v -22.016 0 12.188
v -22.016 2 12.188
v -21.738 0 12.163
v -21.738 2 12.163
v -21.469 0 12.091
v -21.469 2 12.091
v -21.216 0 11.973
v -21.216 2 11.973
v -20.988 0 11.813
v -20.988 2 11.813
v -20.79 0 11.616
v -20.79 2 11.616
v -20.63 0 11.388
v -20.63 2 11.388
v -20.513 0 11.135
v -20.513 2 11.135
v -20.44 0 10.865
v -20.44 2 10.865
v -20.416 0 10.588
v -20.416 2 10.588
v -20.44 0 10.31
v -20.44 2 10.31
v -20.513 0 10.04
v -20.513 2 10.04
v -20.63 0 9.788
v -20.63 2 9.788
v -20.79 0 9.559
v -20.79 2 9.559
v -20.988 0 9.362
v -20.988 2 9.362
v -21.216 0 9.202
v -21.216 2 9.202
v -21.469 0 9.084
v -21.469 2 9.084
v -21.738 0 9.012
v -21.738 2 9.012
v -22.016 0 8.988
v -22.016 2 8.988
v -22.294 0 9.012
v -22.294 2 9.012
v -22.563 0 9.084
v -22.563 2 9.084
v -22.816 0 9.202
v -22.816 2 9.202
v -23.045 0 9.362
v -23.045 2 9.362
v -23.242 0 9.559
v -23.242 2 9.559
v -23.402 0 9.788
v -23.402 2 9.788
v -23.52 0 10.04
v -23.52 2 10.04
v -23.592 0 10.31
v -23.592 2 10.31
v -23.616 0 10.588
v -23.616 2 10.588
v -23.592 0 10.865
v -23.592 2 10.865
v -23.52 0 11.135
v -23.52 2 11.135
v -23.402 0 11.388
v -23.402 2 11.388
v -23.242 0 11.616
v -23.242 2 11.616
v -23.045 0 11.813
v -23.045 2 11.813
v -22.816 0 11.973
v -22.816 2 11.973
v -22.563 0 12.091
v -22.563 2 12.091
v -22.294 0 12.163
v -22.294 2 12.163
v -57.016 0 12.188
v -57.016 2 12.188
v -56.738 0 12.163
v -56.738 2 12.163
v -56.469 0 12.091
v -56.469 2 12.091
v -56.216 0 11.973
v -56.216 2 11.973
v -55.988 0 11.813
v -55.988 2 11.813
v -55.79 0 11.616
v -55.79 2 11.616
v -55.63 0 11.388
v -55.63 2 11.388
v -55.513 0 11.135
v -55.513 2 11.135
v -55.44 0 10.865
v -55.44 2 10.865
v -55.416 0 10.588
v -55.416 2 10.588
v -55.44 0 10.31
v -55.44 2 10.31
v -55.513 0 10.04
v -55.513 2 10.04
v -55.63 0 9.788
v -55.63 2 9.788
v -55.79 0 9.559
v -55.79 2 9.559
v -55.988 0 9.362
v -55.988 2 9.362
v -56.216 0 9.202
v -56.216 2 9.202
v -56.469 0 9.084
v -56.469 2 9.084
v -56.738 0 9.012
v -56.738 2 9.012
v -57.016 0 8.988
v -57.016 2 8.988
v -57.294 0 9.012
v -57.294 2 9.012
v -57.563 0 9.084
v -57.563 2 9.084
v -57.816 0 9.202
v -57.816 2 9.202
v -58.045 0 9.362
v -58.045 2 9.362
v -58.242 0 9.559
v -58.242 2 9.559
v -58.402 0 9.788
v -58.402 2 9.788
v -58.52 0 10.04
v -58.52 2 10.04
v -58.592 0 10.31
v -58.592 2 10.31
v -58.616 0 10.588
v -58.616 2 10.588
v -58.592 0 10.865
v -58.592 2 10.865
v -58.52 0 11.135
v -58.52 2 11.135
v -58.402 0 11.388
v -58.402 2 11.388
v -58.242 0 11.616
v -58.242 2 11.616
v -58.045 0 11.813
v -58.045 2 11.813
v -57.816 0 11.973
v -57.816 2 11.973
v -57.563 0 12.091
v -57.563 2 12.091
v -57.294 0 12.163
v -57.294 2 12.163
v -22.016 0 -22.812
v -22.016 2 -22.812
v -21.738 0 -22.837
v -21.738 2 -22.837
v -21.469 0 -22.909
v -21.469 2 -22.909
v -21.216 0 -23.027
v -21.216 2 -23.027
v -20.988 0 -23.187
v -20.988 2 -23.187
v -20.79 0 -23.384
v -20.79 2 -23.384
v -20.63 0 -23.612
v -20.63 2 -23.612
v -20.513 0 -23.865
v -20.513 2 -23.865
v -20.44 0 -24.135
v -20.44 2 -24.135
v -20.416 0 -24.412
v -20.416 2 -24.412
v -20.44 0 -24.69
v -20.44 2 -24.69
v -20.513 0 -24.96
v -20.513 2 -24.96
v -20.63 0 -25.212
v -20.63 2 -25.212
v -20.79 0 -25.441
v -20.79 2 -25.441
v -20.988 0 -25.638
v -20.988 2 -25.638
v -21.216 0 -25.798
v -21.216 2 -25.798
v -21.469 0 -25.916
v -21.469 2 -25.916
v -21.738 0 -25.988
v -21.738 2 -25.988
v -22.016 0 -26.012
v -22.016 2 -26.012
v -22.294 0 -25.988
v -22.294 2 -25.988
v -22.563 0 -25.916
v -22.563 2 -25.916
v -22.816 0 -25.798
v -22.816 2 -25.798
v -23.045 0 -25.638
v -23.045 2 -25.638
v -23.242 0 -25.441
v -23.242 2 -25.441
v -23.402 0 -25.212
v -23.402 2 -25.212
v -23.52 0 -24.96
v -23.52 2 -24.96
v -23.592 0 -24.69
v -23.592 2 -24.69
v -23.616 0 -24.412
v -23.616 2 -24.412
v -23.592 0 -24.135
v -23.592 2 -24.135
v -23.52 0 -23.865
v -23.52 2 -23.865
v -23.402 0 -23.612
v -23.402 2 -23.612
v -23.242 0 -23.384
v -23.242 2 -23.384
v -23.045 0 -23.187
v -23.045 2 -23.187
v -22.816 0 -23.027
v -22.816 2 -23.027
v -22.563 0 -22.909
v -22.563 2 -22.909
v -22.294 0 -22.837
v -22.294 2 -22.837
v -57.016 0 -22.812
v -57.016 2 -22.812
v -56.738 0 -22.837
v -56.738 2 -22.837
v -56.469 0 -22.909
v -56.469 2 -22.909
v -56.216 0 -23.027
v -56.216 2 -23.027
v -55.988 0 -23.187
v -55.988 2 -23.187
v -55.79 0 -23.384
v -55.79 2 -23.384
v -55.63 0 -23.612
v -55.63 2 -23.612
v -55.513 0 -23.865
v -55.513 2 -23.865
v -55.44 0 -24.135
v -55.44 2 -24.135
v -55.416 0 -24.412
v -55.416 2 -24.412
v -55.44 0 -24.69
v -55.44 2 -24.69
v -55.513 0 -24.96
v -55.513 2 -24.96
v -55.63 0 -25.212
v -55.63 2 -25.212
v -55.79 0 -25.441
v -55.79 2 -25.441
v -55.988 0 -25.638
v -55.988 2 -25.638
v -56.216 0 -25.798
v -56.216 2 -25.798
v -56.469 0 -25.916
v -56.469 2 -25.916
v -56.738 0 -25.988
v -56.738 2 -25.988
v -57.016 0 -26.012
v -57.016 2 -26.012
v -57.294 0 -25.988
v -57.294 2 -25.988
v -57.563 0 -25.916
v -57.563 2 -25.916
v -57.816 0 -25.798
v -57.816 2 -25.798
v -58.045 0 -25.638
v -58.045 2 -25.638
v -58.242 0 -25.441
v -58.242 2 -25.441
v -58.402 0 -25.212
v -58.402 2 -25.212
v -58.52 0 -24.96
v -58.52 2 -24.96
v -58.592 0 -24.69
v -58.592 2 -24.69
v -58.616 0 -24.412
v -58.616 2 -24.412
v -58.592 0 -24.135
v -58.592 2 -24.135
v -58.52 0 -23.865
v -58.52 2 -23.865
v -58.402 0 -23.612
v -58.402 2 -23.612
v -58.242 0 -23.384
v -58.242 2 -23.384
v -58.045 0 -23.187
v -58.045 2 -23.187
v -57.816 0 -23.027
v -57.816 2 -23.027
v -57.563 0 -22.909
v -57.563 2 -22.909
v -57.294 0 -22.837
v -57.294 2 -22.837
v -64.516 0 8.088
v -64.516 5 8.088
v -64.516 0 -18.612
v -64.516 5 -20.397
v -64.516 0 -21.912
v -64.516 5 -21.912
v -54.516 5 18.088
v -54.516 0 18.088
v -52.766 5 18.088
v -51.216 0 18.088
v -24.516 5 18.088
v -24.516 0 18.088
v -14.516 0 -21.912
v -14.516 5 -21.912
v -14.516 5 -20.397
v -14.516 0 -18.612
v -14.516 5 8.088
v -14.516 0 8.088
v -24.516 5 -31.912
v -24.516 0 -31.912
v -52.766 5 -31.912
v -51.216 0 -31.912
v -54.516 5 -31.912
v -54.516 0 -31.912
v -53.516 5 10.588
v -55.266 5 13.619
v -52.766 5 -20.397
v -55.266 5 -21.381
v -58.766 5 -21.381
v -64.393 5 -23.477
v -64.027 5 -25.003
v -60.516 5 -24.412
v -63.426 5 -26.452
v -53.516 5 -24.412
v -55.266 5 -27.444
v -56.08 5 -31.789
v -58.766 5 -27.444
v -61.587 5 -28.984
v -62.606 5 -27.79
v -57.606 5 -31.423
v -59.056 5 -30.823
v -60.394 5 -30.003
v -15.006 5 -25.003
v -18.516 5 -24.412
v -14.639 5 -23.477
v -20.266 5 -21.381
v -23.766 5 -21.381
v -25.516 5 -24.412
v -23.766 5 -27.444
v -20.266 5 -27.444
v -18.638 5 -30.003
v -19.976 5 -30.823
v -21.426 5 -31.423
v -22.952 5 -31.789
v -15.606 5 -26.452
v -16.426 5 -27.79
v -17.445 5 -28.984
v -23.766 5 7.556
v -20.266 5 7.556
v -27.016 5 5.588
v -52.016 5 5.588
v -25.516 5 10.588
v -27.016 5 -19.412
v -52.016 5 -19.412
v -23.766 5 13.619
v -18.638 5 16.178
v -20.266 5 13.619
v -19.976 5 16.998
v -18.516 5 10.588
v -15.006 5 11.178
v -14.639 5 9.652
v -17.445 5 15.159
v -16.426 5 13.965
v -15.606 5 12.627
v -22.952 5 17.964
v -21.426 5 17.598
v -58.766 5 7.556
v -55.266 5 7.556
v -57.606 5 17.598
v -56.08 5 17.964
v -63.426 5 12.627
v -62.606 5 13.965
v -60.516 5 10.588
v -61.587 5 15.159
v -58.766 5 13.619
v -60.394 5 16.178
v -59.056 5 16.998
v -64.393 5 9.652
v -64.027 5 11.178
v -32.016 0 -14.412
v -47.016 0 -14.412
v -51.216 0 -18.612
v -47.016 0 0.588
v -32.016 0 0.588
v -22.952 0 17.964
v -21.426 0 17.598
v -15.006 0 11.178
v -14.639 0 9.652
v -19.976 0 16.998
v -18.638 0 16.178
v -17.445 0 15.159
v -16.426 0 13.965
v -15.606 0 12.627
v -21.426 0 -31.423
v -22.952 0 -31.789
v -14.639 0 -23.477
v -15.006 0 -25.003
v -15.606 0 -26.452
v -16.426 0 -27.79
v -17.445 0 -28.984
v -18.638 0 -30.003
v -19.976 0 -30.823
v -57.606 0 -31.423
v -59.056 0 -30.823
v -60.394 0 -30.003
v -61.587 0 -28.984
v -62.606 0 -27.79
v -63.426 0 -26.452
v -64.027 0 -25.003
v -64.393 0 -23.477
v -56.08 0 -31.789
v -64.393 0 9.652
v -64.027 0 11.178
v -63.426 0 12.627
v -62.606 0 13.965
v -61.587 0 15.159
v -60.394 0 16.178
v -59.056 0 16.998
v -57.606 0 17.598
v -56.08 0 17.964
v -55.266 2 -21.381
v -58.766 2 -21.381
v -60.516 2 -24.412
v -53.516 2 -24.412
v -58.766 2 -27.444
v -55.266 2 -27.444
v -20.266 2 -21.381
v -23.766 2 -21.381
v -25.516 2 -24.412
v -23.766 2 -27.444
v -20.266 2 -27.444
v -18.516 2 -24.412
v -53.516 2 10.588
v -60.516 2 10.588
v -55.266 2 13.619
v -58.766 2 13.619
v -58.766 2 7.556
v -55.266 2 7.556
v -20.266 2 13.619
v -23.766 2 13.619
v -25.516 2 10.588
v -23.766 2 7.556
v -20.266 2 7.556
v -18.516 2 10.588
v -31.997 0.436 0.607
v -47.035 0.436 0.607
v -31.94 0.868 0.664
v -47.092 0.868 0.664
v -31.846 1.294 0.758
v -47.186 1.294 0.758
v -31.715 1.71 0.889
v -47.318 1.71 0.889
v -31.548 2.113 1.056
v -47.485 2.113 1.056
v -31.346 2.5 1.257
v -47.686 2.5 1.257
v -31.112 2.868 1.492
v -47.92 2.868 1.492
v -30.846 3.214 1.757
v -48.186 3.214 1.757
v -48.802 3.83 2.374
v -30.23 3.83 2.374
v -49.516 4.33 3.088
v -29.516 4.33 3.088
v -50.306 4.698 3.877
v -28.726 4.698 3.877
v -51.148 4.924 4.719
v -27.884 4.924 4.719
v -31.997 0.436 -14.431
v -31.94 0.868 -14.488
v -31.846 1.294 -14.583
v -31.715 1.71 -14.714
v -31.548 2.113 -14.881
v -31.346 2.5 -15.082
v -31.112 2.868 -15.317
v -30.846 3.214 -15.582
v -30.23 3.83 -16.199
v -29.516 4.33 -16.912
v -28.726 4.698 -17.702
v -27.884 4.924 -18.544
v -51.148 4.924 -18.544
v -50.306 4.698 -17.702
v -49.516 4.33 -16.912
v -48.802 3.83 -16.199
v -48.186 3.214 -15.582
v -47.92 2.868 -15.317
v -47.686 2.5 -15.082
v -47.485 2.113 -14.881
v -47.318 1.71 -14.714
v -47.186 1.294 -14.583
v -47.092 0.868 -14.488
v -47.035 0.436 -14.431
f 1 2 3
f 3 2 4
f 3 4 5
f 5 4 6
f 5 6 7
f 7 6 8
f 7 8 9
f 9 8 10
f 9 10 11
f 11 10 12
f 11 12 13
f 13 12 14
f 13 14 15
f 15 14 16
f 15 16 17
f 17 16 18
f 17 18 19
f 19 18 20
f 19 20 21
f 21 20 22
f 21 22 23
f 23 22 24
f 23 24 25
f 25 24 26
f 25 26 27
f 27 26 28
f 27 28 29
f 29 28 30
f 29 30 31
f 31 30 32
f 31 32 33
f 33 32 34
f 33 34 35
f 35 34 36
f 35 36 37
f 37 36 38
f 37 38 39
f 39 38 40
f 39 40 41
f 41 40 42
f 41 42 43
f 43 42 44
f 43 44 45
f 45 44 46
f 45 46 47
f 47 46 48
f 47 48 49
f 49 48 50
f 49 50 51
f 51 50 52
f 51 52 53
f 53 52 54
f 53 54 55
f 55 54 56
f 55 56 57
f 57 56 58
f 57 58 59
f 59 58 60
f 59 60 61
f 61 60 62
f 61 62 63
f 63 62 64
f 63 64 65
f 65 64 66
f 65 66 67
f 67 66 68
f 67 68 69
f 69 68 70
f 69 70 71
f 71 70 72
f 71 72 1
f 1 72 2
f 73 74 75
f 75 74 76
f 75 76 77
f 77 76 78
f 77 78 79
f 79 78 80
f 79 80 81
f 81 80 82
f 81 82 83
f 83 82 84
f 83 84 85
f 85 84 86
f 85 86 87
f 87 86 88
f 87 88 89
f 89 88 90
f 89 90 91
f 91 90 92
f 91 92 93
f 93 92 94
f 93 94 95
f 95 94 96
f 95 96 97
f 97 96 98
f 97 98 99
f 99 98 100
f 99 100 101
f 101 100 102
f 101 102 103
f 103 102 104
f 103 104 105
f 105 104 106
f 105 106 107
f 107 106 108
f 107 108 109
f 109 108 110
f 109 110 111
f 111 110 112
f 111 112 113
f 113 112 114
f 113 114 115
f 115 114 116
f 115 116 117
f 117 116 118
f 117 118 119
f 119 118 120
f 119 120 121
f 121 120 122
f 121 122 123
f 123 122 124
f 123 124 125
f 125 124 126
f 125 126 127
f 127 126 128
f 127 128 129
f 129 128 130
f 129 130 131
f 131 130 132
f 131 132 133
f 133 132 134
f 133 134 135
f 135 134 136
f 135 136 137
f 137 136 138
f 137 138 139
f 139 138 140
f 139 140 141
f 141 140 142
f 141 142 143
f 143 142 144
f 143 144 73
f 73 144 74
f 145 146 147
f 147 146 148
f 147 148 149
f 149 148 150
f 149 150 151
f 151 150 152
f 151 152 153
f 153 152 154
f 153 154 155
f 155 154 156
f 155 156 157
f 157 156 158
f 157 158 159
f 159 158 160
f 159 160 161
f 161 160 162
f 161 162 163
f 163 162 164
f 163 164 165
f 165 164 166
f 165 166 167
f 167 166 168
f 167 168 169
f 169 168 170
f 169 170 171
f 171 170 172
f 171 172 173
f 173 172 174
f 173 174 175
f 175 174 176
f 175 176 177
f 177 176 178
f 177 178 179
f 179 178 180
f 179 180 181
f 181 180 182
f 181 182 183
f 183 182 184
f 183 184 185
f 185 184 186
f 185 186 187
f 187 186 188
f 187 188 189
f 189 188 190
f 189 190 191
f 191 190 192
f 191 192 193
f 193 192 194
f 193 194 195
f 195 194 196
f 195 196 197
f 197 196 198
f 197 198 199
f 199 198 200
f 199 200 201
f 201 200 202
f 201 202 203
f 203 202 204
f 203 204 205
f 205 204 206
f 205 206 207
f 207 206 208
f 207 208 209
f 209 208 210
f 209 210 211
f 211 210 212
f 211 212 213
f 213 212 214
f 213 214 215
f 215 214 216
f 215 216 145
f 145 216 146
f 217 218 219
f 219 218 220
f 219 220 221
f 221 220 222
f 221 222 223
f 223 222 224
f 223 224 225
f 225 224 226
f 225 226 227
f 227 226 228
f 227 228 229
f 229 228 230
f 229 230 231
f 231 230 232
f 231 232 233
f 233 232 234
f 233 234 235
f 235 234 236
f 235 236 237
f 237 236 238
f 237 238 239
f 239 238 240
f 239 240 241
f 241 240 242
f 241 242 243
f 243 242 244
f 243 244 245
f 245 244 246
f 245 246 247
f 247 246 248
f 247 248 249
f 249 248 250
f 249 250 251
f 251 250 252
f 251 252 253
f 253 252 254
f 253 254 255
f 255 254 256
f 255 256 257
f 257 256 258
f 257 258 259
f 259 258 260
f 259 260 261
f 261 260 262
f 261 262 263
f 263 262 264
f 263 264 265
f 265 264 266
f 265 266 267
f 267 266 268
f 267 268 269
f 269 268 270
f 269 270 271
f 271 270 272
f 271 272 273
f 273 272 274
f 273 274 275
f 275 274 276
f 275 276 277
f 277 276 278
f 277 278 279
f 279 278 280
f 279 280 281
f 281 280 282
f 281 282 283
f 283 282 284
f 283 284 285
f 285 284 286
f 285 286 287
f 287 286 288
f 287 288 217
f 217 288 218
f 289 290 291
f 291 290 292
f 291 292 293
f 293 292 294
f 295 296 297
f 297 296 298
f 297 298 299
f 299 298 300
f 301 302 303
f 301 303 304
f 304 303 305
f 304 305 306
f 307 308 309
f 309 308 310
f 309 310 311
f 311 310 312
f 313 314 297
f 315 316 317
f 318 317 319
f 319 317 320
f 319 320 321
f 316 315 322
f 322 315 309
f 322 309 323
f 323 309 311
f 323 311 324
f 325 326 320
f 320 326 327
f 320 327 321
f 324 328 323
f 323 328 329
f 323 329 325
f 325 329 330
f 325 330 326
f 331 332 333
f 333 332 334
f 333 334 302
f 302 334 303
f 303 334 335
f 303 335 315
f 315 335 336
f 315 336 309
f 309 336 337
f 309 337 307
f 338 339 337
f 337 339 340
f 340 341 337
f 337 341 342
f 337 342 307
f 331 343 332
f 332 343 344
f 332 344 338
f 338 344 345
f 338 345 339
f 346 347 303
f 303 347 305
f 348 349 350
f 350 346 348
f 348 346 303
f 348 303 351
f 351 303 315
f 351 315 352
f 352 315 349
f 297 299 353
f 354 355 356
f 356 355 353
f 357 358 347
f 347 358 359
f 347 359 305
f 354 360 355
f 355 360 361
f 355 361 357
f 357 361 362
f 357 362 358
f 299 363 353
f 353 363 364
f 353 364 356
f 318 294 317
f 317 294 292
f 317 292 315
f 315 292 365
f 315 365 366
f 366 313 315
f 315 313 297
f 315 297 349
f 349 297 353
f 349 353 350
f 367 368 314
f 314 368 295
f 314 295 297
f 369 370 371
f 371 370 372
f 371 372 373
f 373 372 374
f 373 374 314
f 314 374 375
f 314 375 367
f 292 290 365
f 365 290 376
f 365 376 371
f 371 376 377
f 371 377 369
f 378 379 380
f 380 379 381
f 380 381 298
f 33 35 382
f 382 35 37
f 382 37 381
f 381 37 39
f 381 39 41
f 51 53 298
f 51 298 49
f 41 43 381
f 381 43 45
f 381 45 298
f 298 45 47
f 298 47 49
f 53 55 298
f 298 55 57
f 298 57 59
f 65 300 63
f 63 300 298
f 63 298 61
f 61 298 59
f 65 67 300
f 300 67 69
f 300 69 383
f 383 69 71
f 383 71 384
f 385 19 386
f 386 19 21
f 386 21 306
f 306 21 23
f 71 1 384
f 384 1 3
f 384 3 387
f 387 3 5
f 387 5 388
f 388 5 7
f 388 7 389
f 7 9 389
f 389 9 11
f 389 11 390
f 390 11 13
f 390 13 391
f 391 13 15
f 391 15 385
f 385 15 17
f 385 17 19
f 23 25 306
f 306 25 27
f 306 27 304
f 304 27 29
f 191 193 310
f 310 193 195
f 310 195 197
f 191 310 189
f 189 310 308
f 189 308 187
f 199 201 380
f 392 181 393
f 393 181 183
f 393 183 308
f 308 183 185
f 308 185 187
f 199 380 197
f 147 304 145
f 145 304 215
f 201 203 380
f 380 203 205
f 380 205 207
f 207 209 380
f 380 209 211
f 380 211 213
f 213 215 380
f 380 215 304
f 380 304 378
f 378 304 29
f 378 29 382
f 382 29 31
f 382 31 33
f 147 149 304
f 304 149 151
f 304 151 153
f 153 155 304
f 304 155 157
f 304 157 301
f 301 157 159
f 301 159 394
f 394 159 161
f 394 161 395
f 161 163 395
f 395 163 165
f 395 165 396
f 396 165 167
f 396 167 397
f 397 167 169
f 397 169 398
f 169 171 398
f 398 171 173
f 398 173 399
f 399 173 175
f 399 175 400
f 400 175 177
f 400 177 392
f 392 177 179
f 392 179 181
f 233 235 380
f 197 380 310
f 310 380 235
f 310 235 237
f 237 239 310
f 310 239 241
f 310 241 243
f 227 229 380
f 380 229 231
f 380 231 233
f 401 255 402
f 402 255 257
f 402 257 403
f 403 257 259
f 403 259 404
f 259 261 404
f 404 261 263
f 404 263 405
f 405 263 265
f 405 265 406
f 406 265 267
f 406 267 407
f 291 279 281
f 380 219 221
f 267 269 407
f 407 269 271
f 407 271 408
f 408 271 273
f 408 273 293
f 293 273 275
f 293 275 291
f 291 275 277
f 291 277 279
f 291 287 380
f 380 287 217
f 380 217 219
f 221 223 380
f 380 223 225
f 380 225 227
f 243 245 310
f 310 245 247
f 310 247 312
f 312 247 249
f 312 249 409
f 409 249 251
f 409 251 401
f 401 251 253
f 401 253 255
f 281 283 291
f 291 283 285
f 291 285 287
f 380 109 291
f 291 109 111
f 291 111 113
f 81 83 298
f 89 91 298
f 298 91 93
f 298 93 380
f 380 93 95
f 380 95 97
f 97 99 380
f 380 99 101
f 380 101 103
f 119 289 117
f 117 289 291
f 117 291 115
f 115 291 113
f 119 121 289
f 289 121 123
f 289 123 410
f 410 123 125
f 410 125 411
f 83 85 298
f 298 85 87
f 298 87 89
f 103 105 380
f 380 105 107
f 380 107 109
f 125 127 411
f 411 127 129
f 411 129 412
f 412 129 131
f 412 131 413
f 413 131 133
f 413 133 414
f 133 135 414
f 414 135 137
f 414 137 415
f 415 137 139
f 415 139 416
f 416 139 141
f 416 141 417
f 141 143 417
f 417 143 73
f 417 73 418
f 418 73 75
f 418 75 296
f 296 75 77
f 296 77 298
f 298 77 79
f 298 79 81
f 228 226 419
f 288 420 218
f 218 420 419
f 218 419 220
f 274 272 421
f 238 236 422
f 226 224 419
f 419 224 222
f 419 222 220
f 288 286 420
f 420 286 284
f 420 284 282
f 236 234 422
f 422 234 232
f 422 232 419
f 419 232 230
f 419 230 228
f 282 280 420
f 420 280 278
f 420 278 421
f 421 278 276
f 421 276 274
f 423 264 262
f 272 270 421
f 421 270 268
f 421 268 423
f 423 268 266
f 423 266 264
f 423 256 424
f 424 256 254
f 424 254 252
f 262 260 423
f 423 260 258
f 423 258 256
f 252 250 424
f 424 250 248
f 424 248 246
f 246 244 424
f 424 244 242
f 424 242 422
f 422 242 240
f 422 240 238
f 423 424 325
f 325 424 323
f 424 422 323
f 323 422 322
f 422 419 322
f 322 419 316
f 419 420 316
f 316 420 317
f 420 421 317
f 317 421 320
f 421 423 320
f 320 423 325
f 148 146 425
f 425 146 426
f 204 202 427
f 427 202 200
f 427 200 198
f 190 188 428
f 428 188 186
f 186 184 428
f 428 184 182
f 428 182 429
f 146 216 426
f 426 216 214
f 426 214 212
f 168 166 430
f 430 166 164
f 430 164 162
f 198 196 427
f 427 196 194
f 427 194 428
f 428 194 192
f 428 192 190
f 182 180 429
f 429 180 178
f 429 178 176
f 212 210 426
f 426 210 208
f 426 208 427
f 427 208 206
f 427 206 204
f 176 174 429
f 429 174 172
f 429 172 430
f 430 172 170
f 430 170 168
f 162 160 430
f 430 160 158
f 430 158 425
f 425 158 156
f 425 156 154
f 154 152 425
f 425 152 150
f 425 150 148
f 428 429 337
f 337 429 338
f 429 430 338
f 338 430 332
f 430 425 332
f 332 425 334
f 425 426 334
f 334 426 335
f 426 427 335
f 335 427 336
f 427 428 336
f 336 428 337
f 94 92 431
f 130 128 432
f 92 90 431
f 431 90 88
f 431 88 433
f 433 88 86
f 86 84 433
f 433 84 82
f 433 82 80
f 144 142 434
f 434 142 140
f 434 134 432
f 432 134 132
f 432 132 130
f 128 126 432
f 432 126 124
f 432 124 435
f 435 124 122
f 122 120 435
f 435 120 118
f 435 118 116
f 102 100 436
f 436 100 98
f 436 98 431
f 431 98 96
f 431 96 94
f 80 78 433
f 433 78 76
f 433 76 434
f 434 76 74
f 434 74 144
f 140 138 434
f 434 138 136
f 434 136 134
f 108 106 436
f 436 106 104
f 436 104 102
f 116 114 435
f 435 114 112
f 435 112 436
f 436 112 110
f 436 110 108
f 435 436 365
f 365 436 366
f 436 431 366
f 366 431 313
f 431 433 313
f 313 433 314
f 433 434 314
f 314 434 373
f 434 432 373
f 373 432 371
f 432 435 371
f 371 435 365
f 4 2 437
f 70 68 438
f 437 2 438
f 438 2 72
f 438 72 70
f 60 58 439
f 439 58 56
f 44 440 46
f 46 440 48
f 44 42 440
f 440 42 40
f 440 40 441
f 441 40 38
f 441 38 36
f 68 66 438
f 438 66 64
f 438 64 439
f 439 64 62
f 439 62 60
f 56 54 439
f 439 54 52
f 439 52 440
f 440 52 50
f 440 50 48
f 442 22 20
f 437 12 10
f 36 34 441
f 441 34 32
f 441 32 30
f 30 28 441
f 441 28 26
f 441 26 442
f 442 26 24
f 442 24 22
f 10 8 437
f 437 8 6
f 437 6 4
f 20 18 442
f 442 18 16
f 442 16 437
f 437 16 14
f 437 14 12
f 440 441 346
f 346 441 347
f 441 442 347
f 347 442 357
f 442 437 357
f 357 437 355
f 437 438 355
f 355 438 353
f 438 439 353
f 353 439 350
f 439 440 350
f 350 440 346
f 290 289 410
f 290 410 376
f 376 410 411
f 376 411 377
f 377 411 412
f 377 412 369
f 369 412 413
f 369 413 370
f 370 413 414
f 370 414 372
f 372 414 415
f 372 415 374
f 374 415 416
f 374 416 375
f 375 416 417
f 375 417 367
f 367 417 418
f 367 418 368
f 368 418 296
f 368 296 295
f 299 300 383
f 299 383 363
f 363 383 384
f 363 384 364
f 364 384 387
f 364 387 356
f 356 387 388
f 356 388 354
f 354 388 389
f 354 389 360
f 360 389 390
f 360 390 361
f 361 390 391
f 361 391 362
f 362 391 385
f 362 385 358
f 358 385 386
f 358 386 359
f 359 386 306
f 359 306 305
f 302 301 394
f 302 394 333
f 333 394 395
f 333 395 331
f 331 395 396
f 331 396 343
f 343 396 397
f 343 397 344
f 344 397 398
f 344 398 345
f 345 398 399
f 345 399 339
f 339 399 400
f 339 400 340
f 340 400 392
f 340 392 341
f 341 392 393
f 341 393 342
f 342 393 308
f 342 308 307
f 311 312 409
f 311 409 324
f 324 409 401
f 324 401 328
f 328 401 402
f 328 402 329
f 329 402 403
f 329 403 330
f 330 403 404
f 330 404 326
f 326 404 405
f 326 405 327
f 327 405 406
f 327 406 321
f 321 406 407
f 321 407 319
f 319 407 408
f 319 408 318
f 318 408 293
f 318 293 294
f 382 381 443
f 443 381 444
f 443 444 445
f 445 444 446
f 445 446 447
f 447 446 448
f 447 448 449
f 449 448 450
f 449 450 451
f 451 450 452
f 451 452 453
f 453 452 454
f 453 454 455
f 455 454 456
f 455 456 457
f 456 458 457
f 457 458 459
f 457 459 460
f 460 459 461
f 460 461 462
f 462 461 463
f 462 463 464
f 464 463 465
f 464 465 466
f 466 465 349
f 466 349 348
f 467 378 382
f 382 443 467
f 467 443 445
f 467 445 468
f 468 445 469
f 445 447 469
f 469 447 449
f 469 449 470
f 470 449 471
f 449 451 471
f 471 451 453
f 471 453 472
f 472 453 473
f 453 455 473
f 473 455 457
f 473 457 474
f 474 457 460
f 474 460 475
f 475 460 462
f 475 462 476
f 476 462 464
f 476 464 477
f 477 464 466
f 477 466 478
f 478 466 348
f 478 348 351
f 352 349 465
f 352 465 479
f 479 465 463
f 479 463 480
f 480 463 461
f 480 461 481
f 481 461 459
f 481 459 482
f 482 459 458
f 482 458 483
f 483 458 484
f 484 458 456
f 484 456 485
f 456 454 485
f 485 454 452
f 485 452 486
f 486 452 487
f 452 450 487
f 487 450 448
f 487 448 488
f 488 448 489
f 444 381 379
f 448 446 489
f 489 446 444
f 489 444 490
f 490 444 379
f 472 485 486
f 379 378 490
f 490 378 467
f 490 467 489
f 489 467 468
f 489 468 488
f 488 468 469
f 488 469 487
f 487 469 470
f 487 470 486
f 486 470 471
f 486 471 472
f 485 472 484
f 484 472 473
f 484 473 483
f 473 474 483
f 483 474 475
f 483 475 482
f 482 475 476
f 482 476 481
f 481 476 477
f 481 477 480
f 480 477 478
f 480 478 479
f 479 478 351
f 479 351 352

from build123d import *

# Parameters (mm, degrees)
SKETCH1_W           = 50
SKETCH1_H           = 50
BOSS_EXTRUDE1_DEPTH = 5
SKETCH2_R           = 1.6
CUT_EXTRUDE1_DEPTH  = 5
SKETCH4_W           = 15
SKETCH4_H           = 15
CUT_EXTRUDE2_DEPTH  = 5
CUT_EXTRUDE3_DEPTH  = 3
FILLET2_R           = 10
FILLET3_R           = 5


with BuildPart() as part:
    # Sketch1 → Boss-Extrude1 (new body)
    with BuildSketch(Plane(origin=(0, 0, 0), x_dir=(1, 0, 0), z_dir=(0, 1, 0))):
        with Locations((-39.516129032, 6.912442396)):
            Rectangle(SKETCH1_W, SKETCH1_H)
    extrude(amount=BOSS_EXTRUDE1_DEPTH)

    # Sketch2 → Cut-Extrude1 (cut)
    with BuildSketch(Plane(origin=(0, 5, 0), x_dir=(1, 0, 0), z_dir=(0, 1, 0))):
        with Locations(Location((-57.016129032, 24.412442396, 0), (0, 0, 270))):
            Circle(SKETCH2_R)
        with Locations(Location((-22.016129032, 24.412442396, 0), (0, 0, 270))):
            Circle(SKETCH2_R)
        with Locations(Location((-57.016129032, -10.587557604, 0), (0, 0, 270))):
            Circle(SKETCH2_R)
        with Locations(Location((-22.016129032, -10.587557604, 0), (0, 0, 270))):
            Circle(SKETCH2_R)
    extrude(amount=-CUT_EXTRUDE1_DEPTH, mode=Mode.SUBTRACT)

    # Sketch4 → Cut-Extrude2 (cut)
    with BuildSketch(Plane(origin=(0, 5, 0), x_dir=(1, 0, 0), z_dir=(0, 1, 0))):
        with Locations((-39.516129032, 6.912442396)):
            Rectangle(SKETCH4_W, SKETCH4_H)
    extrude(amount=-CUT_EXTRUDE2_DEPTH, mode=Mode.SUBTRACT)

    # Sketch5 → Cut-Extrude3 (cut)
    with BuildSketch(Plane(origin=(0, 5, 0), x_dir=(1, 0, 0), z_dir=(0, 1, 0))):
        Polygon((-58.766129032, 27.44353131), (-60.516129032, 24.412442396), (-58.766129032, 21.381353483), (-55.266129032, 21.381353483), (-53.516129032, 24.412442396), (-55.266129032, 27.44353131), align=None)
        Polygon((-23.766129032, 27.44353131), (-25.516129032, 24.412442396), (-23.766129032, 21.381353483), (-20.266129032, 21.381353483), (-18.516129032, 24.412442396), (-20.266129032, 27.44353131), align=None)
        Polygon((-58.766129032, -7.55646869), (-60.516129032, -10.587557604), (-58.766129032, -13.618646517), (-55.266129032, -13.618646517), (-53.516129032, -10.587557604), (-55.266129032, -7.55646869), align=None)
        Polygon((-23.766129032, -7.55646869), (-25.516129032, -10.587557604), (-23.766129032, -13.618646517), (-20.266129032, -13.618646517), (-18.516129032, -10.587557604), (-20.266129032, -7.55646869), align=None)
    extrude(amount=-CUT_EXTRUDE3_DEPTH, mode=Mode.SUBTRACT)

    # Fillet2
    fillet2_edges = [part.edges().sort_by_distance(p)[0] for p in [
        (-64.516129032, 2.5, -31.912442396),
        (-14.516129032, 2.5, -31.912442396),
        (-14.516129032, 2.5, 18.087557604),
        (-64.516129032, 2.5, 18.087557604),
    ]]
    fillet(fillet2_edges, radius=FILLET2_R)

    # Fillet3
    fillet3_edges = [part.edges().sort_by_distance(p)[0] for p in [
        (-39.516129032, 5, -14.412442396),
        (-32.016129032, 5, -6.912442396),
        (-39.516129032, 5, 0.587557604),
        (-47.016129032, 5, -6.912442396),
    ]]
    fillet(fillet3_edges, radius=FILLET3_R - 0.0001)  # a hair under: the kernel refuses the full size


solid = part.part
